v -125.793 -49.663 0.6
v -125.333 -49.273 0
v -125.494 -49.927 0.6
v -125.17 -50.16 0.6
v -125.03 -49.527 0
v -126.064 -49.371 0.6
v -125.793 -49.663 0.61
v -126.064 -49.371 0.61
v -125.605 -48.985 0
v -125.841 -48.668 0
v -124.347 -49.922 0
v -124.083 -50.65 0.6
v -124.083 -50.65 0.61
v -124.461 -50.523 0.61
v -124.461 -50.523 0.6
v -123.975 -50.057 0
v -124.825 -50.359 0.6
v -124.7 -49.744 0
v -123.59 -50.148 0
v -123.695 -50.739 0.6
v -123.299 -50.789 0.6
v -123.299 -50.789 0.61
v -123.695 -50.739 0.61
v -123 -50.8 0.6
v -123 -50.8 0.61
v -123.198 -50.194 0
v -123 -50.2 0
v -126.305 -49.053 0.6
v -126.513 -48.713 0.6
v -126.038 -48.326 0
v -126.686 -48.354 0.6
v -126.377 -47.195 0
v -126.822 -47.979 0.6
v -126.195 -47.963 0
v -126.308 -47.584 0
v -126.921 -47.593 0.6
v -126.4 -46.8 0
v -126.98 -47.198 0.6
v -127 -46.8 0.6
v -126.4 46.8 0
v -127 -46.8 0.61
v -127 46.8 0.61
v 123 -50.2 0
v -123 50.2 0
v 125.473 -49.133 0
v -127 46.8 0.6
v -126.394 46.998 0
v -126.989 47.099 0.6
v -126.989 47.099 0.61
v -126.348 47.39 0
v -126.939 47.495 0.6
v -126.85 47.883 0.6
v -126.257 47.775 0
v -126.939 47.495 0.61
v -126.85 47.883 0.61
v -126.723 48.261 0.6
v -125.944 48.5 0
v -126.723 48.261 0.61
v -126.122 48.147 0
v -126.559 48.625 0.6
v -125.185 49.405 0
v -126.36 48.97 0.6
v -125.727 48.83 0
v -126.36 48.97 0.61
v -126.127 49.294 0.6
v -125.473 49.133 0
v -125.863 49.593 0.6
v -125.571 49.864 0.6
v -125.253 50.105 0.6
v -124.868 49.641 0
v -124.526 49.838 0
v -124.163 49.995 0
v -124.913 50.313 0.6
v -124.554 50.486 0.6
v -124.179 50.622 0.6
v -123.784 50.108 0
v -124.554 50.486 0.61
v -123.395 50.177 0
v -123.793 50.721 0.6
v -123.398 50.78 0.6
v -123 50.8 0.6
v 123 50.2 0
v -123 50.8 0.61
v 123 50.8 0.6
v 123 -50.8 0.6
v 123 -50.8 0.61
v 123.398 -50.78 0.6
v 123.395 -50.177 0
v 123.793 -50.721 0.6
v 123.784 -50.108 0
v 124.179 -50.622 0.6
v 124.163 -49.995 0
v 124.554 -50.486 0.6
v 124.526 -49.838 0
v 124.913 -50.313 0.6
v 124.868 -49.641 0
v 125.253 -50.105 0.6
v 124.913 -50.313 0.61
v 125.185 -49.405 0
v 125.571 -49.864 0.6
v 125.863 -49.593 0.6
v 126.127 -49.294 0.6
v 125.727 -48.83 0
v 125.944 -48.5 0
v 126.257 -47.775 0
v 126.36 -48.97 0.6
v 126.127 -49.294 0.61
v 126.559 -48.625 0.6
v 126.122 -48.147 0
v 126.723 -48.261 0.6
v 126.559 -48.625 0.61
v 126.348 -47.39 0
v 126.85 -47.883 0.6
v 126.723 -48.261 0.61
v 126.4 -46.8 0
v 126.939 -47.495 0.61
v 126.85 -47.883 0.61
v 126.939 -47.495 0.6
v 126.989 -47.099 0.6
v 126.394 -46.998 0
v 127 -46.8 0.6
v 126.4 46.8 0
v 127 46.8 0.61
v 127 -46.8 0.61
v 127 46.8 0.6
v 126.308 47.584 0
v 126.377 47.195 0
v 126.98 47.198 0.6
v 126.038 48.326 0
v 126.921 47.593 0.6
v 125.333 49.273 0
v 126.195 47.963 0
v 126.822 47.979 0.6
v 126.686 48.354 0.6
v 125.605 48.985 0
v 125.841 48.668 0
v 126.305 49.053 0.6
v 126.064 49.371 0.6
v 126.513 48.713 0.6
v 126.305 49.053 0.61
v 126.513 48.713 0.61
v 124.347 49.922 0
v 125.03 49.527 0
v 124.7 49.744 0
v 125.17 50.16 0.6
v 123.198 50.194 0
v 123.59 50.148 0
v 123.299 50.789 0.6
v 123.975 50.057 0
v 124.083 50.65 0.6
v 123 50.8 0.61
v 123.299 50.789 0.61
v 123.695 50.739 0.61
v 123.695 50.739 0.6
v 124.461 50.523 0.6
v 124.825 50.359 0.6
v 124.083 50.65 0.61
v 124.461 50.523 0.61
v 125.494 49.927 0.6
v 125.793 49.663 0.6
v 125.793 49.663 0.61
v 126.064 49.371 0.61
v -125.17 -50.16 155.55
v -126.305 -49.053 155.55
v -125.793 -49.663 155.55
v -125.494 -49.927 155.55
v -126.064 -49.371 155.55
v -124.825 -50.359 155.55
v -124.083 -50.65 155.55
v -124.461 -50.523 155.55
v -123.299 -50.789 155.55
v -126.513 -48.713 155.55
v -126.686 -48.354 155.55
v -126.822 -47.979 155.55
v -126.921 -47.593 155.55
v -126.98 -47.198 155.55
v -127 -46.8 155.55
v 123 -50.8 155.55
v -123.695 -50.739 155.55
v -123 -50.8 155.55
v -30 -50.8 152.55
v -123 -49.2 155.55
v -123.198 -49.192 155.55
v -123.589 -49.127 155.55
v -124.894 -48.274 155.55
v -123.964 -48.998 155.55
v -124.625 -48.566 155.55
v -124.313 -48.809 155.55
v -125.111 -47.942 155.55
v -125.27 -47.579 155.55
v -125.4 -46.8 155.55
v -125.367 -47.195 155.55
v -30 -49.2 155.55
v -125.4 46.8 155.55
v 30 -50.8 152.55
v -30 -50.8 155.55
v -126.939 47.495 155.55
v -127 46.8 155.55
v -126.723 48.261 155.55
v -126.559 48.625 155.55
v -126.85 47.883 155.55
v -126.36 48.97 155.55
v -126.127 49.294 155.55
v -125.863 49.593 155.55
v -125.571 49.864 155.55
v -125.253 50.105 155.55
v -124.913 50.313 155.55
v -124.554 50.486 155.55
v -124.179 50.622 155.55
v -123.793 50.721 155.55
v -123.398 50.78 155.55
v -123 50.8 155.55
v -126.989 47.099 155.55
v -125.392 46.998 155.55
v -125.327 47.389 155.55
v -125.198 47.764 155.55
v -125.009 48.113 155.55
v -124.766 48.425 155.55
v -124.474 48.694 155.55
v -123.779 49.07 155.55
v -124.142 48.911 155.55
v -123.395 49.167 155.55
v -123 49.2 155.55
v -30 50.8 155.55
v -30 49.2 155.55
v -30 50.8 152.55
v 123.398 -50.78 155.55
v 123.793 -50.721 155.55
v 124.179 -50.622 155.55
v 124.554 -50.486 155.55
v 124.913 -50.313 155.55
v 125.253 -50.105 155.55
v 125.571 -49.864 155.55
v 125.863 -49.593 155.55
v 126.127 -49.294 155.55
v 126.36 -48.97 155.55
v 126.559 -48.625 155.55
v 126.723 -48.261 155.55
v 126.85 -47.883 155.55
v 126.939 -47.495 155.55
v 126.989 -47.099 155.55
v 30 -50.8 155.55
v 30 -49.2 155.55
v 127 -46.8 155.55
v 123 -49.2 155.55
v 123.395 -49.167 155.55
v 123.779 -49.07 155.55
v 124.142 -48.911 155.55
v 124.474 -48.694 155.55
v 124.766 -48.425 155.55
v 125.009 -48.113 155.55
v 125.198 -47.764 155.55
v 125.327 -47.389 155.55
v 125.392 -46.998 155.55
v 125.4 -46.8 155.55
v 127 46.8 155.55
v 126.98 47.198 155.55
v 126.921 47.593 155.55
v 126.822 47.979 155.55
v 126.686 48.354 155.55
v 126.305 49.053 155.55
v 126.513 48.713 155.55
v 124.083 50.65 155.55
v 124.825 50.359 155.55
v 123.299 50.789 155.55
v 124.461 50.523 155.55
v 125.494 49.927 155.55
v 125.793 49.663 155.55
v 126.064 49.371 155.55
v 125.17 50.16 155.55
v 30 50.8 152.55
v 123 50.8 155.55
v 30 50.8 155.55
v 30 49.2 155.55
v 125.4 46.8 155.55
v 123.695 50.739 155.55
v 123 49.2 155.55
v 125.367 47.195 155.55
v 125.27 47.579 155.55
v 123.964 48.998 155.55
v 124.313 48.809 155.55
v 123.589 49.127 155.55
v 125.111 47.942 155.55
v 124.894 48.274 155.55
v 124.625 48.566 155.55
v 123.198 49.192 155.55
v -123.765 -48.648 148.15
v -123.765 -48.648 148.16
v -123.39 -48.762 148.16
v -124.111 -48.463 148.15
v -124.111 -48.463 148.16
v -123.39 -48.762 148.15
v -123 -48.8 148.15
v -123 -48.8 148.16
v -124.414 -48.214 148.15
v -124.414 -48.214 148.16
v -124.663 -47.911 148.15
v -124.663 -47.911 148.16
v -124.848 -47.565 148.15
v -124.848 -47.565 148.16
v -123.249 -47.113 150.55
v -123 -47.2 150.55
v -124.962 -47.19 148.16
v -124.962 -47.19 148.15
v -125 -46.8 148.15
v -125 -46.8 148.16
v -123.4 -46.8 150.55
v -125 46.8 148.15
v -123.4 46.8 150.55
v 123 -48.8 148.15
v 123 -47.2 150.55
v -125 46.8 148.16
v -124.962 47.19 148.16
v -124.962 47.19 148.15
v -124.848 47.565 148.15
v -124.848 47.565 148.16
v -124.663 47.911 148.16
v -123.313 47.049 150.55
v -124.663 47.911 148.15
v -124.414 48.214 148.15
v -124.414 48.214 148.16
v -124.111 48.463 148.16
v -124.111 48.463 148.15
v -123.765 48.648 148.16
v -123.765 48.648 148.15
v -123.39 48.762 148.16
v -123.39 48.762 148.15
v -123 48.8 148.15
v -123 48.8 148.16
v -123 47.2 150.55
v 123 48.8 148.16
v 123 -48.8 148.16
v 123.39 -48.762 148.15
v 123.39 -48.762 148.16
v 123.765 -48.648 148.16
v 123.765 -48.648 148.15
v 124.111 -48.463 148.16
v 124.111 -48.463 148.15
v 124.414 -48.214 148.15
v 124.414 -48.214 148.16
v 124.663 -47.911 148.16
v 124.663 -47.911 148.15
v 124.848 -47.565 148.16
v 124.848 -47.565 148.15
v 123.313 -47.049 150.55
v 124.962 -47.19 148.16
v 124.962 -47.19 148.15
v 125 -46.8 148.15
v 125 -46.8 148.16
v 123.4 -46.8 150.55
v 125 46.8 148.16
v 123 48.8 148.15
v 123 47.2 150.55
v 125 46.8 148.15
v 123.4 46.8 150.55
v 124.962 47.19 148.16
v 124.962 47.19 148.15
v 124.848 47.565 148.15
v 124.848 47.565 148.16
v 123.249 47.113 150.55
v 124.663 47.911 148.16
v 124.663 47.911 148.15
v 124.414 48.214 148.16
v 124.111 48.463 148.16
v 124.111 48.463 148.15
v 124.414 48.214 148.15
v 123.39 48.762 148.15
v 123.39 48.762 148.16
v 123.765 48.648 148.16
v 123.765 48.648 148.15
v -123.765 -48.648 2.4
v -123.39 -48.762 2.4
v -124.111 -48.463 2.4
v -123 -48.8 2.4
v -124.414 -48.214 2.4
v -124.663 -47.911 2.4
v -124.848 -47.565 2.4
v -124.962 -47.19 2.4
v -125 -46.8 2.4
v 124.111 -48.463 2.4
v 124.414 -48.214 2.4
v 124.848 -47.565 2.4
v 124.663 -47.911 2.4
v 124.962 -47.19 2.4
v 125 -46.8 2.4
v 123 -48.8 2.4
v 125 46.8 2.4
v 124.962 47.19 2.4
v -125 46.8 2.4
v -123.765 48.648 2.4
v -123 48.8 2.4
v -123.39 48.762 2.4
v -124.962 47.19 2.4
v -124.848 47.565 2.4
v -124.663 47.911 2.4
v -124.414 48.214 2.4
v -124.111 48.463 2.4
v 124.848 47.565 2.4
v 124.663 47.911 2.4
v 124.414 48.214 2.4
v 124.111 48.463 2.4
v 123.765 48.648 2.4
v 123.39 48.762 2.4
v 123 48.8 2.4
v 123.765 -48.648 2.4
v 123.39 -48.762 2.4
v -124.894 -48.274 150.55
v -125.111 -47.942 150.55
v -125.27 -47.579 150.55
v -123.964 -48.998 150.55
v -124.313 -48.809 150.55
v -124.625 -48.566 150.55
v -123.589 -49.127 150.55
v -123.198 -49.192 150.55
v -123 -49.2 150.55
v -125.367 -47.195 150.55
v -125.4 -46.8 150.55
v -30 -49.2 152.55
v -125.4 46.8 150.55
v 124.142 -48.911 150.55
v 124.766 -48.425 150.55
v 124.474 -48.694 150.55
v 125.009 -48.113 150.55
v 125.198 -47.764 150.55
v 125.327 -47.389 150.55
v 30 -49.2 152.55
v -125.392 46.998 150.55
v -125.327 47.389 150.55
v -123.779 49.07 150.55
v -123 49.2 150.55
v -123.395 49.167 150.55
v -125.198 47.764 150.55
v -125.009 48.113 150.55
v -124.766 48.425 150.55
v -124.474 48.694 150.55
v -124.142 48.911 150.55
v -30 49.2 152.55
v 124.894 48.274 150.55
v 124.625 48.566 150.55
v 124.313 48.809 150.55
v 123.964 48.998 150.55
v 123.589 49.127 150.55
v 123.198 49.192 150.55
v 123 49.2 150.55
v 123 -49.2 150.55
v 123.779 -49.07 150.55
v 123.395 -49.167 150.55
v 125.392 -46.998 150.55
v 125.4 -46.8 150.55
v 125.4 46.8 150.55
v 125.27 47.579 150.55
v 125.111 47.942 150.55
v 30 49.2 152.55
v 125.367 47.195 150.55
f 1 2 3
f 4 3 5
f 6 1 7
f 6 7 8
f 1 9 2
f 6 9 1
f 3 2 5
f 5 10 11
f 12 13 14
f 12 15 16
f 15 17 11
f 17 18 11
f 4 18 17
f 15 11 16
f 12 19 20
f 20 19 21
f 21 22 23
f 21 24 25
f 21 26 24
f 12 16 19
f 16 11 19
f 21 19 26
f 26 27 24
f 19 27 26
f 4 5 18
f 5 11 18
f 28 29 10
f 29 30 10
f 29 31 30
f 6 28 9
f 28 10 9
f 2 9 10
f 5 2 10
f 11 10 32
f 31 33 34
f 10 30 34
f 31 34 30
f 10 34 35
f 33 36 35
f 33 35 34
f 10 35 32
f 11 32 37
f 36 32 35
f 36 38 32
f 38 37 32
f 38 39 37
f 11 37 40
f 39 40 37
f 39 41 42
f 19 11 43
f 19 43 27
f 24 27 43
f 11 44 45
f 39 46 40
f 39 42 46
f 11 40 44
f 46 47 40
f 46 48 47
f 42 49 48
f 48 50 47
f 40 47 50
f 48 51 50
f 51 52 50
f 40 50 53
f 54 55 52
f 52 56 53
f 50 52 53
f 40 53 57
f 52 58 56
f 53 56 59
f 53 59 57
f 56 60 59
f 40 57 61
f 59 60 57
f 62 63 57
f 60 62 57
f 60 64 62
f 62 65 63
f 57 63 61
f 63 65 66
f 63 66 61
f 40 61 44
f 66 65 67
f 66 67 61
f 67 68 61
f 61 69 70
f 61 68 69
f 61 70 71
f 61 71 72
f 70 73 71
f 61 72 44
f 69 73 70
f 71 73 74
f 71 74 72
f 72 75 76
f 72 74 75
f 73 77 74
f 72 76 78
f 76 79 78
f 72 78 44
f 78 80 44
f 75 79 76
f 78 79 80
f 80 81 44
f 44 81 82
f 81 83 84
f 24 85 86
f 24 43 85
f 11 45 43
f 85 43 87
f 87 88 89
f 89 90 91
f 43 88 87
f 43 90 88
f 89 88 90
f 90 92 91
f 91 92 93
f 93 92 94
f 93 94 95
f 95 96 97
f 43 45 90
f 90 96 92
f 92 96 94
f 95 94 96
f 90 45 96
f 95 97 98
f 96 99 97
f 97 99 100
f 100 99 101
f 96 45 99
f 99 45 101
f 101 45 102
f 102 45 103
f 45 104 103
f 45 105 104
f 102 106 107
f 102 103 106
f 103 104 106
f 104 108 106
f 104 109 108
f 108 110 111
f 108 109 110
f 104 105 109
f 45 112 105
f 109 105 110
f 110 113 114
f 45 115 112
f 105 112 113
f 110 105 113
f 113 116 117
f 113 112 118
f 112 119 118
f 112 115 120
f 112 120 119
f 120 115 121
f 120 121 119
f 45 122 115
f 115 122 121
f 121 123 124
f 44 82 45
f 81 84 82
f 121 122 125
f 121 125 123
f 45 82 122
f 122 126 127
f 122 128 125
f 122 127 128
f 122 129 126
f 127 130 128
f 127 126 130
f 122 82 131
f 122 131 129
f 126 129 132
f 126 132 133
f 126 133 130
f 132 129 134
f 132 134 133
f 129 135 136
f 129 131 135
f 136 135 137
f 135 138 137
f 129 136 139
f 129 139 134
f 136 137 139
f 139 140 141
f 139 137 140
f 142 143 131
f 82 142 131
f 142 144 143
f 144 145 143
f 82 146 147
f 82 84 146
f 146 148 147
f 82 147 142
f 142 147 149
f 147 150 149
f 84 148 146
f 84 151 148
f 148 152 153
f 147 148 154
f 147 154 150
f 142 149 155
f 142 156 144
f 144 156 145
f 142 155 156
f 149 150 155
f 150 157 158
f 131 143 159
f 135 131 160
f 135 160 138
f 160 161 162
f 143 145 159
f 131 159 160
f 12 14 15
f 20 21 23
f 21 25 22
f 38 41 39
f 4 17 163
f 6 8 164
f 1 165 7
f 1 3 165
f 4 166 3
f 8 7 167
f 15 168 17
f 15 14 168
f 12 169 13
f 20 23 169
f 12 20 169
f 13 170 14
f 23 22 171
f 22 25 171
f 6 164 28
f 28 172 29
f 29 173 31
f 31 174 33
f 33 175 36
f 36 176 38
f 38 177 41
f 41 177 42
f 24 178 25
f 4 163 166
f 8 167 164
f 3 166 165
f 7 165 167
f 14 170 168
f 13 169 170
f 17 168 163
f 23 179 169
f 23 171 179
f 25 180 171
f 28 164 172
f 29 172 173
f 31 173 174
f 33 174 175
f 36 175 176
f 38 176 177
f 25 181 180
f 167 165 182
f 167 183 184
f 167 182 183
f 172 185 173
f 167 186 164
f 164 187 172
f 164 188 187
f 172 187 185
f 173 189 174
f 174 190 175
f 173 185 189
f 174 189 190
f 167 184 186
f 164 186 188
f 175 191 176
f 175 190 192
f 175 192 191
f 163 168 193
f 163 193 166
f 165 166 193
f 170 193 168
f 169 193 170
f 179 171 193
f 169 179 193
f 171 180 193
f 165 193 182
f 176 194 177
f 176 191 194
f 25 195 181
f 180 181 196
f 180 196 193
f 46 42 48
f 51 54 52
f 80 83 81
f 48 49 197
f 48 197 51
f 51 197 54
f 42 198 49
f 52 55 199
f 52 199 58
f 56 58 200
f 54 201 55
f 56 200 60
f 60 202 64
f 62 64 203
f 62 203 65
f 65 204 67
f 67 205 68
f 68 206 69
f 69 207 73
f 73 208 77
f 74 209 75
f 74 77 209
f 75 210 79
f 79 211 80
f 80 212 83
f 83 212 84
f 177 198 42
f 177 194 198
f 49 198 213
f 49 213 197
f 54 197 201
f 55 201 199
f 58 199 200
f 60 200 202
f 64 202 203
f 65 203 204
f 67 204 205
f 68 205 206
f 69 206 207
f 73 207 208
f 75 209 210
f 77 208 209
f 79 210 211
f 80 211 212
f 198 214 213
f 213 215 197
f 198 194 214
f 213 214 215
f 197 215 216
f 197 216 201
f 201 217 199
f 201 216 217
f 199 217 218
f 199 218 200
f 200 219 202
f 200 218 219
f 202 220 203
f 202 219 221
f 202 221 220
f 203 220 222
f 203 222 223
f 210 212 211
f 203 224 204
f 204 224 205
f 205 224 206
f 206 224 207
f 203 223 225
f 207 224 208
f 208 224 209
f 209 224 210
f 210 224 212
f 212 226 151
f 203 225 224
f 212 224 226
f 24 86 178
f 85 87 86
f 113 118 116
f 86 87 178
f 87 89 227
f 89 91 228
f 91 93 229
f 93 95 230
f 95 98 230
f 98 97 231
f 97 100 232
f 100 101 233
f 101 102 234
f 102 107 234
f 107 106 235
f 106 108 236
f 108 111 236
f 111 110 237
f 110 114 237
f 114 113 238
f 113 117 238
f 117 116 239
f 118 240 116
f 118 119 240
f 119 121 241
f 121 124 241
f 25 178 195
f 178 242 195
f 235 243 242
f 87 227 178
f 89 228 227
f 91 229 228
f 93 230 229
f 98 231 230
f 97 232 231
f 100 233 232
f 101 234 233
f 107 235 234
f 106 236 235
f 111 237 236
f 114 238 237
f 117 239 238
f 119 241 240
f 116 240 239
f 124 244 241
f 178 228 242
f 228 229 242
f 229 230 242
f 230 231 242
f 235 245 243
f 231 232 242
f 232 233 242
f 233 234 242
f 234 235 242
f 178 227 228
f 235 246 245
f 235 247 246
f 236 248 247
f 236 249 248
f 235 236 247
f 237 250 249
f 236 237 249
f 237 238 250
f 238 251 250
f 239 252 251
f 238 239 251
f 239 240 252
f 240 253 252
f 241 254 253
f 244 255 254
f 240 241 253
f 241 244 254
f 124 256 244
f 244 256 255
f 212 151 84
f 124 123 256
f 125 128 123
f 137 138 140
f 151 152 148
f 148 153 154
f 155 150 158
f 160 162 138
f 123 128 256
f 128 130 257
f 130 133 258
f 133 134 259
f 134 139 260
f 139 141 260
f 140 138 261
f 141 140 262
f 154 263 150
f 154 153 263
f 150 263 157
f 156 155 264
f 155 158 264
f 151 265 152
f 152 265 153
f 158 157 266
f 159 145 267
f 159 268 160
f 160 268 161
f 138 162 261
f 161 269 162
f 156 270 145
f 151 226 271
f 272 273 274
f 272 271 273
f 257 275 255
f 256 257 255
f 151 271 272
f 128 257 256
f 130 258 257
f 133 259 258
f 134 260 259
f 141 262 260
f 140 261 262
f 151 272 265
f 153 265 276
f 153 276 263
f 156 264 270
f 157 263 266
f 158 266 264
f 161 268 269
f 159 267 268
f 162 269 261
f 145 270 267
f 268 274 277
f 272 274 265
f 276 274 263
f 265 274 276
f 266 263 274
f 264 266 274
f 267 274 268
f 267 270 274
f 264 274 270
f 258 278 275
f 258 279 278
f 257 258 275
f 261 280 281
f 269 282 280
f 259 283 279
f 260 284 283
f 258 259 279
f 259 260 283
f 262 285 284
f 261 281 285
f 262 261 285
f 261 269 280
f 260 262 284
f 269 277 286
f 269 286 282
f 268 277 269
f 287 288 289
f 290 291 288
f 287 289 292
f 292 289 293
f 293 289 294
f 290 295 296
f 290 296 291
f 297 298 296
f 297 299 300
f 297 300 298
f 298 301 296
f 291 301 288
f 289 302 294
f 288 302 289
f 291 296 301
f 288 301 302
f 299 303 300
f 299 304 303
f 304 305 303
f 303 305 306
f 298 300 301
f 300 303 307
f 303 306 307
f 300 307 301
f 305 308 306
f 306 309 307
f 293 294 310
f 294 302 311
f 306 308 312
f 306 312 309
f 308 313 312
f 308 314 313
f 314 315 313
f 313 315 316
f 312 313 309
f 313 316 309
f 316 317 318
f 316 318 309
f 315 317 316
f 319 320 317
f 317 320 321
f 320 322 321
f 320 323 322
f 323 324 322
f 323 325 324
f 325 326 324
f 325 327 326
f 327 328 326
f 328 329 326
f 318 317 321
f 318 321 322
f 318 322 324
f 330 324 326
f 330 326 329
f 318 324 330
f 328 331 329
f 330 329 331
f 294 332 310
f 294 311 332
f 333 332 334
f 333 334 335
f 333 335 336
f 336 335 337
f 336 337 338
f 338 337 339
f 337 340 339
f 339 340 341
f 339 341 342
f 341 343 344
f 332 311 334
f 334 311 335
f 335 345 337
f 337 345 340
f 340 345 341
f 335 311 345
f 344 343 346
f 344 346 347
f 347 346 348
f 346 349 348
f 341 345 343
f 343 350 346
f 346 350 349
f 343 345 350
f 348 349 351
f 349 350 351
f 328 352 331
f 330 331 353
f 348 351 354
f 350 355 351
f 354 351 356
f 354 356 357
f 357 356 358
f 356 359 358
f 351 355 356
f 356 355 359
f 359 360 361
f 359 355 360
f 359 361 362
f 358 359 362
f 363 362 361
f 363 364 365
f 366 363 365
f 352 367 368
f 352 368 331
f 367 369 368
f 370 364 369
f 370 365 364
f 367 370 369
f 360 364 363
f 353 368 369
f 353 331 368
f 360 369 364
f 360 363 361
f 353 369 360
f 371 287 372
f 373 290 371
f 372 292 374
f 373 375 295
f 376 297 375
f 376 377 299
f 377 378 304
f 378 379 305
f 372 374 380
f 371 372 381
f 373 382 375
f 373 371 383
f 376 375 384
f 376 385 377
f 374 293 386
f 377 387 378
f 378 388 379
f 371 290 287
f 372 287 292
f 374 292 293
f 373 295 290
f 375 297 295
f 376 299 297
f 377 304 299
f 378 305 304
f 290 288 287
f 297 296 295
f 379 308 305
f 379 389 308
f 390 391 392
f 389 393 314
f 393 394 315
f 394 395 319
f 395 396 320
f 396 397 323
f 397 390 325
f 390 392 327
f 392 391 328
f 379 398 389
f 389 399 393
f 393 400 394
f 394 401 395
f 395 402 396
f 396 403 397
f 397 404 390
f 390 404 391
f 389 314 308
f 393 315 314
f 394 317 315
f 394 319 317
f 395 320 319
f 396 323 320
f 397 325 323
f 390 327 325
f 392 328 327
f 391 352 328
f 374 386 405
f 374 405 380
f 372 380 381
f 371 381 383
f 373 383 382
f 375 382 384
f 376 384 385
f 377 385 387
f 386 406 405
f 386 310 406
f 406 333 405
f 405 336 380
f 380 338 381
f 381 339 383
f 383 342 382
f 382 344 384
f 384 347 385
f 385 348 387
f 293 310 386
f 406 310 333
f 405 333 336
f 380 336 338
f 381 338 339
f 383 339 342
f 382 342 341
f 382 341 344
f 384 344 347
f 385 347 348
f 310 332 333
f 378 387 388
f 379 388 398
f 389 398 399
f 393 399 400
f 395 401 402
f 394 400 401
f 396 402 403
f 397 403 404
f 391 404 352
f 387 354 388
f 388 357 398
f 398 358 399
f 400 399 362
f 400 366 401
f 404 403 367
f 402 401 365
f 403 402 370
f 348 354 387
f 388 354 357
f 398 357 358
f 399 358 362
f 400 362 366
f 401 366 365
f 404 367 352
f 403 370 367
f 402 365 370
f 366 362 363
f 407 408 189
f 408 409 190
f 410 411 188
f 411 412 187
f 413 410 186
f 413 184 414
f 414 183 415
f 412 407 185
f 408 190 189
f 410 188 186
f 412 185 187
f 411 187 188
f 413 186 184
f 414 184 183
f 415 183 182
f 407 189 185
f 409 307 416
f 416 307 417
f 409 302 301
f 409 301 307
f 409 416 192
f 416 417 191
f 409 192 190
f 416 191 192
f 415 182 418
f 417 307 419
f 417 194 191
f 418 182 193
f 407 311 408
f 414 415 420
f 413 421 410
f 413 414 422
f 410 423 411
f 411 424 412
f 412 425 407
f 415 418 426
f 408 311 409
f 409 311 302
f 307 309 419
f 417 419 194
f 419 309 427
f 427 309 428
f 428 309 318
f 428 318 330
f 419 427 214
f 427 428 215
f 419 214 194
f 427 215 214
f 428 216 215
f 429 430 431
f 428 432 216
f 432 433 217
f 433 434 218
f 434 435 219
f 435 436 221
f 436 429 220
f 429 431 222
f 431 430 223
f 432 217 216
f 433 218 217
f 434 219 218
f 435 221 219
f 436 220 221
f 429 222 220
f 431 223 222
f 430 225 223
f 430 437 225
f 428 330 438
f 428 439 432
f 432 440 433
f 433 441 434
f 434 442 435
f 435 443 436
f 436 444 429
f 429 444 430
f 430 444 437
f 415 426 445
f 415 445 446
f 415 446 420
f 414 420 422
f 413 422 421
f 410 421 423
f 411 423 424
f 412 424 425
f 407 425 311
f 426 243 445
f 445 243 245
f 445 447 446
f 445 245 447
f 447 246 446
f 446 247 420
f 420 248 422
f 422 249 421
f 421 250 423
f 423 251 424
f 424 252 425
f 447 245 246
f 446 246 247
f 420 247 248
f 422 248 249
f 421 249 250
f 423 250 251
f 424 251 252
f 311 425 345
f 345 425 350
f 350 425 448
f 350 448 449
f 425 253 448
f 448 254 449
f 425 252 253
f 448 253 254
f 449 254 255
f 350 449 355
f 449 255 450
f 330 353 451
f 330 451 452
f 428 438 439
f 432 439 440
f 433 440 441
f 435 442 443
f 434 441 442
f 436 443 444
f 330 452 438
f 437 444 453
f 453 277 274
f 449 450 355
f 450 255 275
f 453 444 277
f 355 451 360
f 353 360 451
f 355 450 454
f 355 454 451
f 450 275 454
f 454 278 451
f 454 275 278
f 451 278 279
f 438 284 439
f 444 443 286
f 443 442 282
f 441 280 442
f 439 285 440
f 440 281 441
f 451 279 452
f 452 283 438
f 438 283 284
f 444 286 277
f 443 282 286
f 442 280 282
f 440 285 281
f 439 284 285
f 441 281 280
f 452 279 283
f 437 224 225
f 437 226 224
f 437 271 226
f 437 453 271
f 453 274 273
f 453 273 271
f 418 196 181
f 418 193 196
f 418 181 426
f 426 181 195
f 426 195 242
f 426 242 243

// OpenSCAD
// file: photo_box_002.scad
// photo_box — shipping box for photos, with a proud inset lid
//
// Two parts, single-colour PLA, both print without supports.
//   box  prints open-face-up, floor on the bed
//   lid  prints top-face-down, skirt pointing up
//
// The four numbers below are the ones to change. Everything else is
// derived, so the model stays coherent at any size.

// ---- outside envelope (lid on) ----------------------------------------
// HARD CONSTRAINT. No feature on either part may exceed these in any
// axis. Grips and the like are cut *into* the envelope, never added
// outside it. Checked against the exported meshes — see SPEC.md §9.
box_w = 254;      // 10"    width
box_d = 101.6;    // 4"     depth
box_h = 158.75;   // 6.25"  height, lid seated

// ---- thicknesses ------------------------------------------------------
wall_t  = 2.0;    // side walls        (5 perimeters @ 0.4)
floor_t = 2.4;    // box floor         (6 perimeters)
lid_t   = 3.2;    // lid plate         (8 perimeters)

// ---- lid interface ----------------------------------------------------
rabbet_h = 5.0;   // how far the ledge sits below the rim
ledge_w  = 2.0;   // horizontal width of the ledge
rim_t    = 1.6;   // standing rim above the ledge (4 perimeters)
ramp_h   = 2.4;   // ramp thickening the wall into the rabbet zone. Rises 2.4
                  // while growing 1.6 inward — 34 deg off vertical, so it sits
                  // clear of the 45 deg self-support limit rather than on it.
skirt_w  = 1.6;   // lid skirt thickness (4 perimeters)
clr      = 0.3;   // lateral clearance, skirt to rim (PLA)
seat_gap = 0.4;   // skirt clears the ledge — the rim is the seat, not the ledge

// ---- cosmetic / ergonomic --------------------------------------------
corner_r   = 4.0;  // outside corner radius
lid_relief = 0.25; // lid plate inset from the outer face, per side
skirt_cham = 1.0;  // 45 deg lead-in so the lid self-centres on the way in
foot_cham  = 0.6;  // bottom outer edge — chamfer, not a round (elephant's foot)

// Nail catch: a notch taken out of the BOX rim, front and back, leaving the
// lid edge overhanging a gap you put a fingernail into. Subtractive, so the
// grip costs no envelope.
//
// It is cut from the rim rather than the lid's underside because the plate
// only overhangs the skirt by 1.65 (lid_od/2 - skirt_od/2). Chamfering the
// lid deeper than that removes the plate from under the skirt and leaves the
// skirt bridging nail_w in mid-air. The rim has depth to give; the lid
// does not.
nail_d = 3.0;      // notch depth below the rim top
nail_w = 60.0;     // span along the edge, centred

// ---- output -----------------------------------------------------------
part = "both";     // "box" | "lid" | "both"

$fa = 2;
$fs = 0.4;

// ---- derived ----------------------------------------------------------
body_h   = box_h - lid_t;        // rim top: the lid plate sits on this
ledge_z  = body_h - rabbet_h;    // up-facing ledge surface
ramp_z   = ledge_z - ramp_h;     // where the wall starts thickening
top_wall = rim_t + ledge_w;      // wall thickness through the rabbet zone
skirt_h  = rabbet_h - seat_gap;  // skirt stops short of the ledge

// Rounded-rectangle prism, centred in x/y, rising from z = 0.
module rrect_prism(w, d, r, h) {
    rr = max(min(r, w / 2 - 0.01, d / 2 - 0.01), 0.01);
    linear_extrude(height = h)
        offset(r = rr)
            square([w - 2 * rr, d - 2 * rr], center = true);
}

// ---- box --------------------------------------------------------------

module box_outer() {
    // Chamfered foot, then a straight prism the rest of the way up.
    hull() {
        rrect_prism(box_w - 2 * foot_cham, box_d - 2 * foot_cham,
                    corner_r - foot_cham, 0.01);
        translate([0, 0, foot_cham]) rrect_prism(box_w, box_d, corner_r, 0.01);
    }
    translate([0, 0, foot_cham])
        rrect_prism(box_w, box_d, corner_r, body_h - foot_cham);
}

// The cavity is cut in three stacked pieces. Each one is *wider* than the
// piece below it or tapers into it, so every newly exposed surface faces up
// or sits at 45 deg — nothing to support.
module box_cavity() {
    // Main volume, floor up to the ramp.
    translate([0, 0, floor_t])
        rrect_prism(box_w - 2 * wall_t, box_d - 2 * wall_t,
                    corner_r - wall_t, ramp_z - floor_t + 0.01);

    // 45 deg ramp: the wall thickens inward from wall_t to top_wall, giving
    // the rabbet something solid to be cut out of and hooping the top of a
    // large thin-walled box.
    hull() {
        translate([0, 0, ramp_z])
            rrect_prism(box_w - 2 * wall_t, box_d - 2 * wall_t,
                        corner_r - wall_t, 0.01);
        translate([0, 0, ledge_z - 0.01])
            rrect_prism(box_w - 2 * top_wall, box_d - 2 * top_wall,
                        corner_r - top_wall, 0.01);
    }

    // Rabbet: a wider cut above the ledge leaves the ledge as an up-facing
    // shelf and the rim as a standing fin.
    translate([0, 0, ledge_z])
        rrect_prism(box_w - 2 * rim_t, box_d - 2 * rim_t,
                    corner_r - rim_t, rabbet_h + 1);
}

// Notch through the rim, front and back. Its floor faces up and its walls are
// vertical, so it costs the upright box print nothing. Inboard of the rim is
// already rabbet void, so the cut reaches past it harmlessly.
module nail_catch_cut() {
    for (s = [1, -1])
        translate([0, s * (box_d / 2 - 3), body_h - nail_d / 2 + 1])
            cube([nail_w, 10, nail_d + 2], center = true);
}

module box() {
    difference() {
        box_outer();
        box_cavity();
        nail_catch_cut();
    }
}

// ---- lid --------------------------------------------------------------
// Modelled in the assembled orientation: plate on top, skirt hanging down
// into the rabbet. Flipped for printing at the bottom of the file.

skirt_ow = box_w - 2 * rim_t - 2 * clr;
skirt_od = box_d - 2 * rim_t - 2 * clr;
skirt_or = corner_r - rim_t - clr;
skirt_z0 = body_h - skirt_h;

lid_ow = box_w - 2 * lid_relief;
lid_od = box_d - 2 * lid_relief;

module lid() {
    // Plain plate. The grip lives in the box rim, so nothing is cut from
    // here and the skirt keeps full plate under it.
    translate([0, 0, body_h])
        rrect_prism(lid_ow, lid_od, corner_r - lid_relief, lid_t);

    // Skirt: lateral register only. Its outer face runs against the rim's
    // inner face; a 45 deg lead-in lets it find the opening on the way down.
    difference() {
        union() {
            hull() {
                translate([0, 0, skirt_z0])
                    rrect_prism(skirt_ow - 2 * skirt_cham,
                                skirt_od - 2 * skirt_cham,
                                skirt_or - skirt_cham, 0.01);
                translate([0, 0, skirt_z0 + skirt_cham])
                    rrect_prism(skirt_ow, skirt_od, skirt_or, 0.01);
            }
            translate([0, 0, skirt_z0 + skirt_cham])
                rrect_prism(skirt_ow, skirt_od, skirt_or,
                            skirt_h - skirt_cham + 0.01);
        }
        translate([0, 0, skirt_z0 - 1])
            rrect_prism(skirt_ow - 2 * skirt_w, skirt_od - 2 * skirt_w,
                        skirt_or - skirt_w, skirt_h + 2);
    }
}

// Lid rotated onto its print orientation: visible face down on the bed.
module lid_printed() {
    translate([0, 0, box_h]) rotate([180, 0, 0]) lid();
}

// ---- output -----------------------------------------------------------

if (part == "box") {
    box();
} else if (part == "lid") {
    lid_printed();
} else if (part == "both") {
    // Exploded preview — lid lifted clear so the rabbet is visible.
    box();
    translate([0, 0, 40]) lid();
}
// Any other value emits nothing, so this file can be included and
// section-cut for debugging without drawing the whole model.
// main file
// Box-only print layout (open face up, floor on the bed, support-free).
// The trailing assignment overrides part="both" from the include.
include <photo_box_002.scad>
part = "box";
